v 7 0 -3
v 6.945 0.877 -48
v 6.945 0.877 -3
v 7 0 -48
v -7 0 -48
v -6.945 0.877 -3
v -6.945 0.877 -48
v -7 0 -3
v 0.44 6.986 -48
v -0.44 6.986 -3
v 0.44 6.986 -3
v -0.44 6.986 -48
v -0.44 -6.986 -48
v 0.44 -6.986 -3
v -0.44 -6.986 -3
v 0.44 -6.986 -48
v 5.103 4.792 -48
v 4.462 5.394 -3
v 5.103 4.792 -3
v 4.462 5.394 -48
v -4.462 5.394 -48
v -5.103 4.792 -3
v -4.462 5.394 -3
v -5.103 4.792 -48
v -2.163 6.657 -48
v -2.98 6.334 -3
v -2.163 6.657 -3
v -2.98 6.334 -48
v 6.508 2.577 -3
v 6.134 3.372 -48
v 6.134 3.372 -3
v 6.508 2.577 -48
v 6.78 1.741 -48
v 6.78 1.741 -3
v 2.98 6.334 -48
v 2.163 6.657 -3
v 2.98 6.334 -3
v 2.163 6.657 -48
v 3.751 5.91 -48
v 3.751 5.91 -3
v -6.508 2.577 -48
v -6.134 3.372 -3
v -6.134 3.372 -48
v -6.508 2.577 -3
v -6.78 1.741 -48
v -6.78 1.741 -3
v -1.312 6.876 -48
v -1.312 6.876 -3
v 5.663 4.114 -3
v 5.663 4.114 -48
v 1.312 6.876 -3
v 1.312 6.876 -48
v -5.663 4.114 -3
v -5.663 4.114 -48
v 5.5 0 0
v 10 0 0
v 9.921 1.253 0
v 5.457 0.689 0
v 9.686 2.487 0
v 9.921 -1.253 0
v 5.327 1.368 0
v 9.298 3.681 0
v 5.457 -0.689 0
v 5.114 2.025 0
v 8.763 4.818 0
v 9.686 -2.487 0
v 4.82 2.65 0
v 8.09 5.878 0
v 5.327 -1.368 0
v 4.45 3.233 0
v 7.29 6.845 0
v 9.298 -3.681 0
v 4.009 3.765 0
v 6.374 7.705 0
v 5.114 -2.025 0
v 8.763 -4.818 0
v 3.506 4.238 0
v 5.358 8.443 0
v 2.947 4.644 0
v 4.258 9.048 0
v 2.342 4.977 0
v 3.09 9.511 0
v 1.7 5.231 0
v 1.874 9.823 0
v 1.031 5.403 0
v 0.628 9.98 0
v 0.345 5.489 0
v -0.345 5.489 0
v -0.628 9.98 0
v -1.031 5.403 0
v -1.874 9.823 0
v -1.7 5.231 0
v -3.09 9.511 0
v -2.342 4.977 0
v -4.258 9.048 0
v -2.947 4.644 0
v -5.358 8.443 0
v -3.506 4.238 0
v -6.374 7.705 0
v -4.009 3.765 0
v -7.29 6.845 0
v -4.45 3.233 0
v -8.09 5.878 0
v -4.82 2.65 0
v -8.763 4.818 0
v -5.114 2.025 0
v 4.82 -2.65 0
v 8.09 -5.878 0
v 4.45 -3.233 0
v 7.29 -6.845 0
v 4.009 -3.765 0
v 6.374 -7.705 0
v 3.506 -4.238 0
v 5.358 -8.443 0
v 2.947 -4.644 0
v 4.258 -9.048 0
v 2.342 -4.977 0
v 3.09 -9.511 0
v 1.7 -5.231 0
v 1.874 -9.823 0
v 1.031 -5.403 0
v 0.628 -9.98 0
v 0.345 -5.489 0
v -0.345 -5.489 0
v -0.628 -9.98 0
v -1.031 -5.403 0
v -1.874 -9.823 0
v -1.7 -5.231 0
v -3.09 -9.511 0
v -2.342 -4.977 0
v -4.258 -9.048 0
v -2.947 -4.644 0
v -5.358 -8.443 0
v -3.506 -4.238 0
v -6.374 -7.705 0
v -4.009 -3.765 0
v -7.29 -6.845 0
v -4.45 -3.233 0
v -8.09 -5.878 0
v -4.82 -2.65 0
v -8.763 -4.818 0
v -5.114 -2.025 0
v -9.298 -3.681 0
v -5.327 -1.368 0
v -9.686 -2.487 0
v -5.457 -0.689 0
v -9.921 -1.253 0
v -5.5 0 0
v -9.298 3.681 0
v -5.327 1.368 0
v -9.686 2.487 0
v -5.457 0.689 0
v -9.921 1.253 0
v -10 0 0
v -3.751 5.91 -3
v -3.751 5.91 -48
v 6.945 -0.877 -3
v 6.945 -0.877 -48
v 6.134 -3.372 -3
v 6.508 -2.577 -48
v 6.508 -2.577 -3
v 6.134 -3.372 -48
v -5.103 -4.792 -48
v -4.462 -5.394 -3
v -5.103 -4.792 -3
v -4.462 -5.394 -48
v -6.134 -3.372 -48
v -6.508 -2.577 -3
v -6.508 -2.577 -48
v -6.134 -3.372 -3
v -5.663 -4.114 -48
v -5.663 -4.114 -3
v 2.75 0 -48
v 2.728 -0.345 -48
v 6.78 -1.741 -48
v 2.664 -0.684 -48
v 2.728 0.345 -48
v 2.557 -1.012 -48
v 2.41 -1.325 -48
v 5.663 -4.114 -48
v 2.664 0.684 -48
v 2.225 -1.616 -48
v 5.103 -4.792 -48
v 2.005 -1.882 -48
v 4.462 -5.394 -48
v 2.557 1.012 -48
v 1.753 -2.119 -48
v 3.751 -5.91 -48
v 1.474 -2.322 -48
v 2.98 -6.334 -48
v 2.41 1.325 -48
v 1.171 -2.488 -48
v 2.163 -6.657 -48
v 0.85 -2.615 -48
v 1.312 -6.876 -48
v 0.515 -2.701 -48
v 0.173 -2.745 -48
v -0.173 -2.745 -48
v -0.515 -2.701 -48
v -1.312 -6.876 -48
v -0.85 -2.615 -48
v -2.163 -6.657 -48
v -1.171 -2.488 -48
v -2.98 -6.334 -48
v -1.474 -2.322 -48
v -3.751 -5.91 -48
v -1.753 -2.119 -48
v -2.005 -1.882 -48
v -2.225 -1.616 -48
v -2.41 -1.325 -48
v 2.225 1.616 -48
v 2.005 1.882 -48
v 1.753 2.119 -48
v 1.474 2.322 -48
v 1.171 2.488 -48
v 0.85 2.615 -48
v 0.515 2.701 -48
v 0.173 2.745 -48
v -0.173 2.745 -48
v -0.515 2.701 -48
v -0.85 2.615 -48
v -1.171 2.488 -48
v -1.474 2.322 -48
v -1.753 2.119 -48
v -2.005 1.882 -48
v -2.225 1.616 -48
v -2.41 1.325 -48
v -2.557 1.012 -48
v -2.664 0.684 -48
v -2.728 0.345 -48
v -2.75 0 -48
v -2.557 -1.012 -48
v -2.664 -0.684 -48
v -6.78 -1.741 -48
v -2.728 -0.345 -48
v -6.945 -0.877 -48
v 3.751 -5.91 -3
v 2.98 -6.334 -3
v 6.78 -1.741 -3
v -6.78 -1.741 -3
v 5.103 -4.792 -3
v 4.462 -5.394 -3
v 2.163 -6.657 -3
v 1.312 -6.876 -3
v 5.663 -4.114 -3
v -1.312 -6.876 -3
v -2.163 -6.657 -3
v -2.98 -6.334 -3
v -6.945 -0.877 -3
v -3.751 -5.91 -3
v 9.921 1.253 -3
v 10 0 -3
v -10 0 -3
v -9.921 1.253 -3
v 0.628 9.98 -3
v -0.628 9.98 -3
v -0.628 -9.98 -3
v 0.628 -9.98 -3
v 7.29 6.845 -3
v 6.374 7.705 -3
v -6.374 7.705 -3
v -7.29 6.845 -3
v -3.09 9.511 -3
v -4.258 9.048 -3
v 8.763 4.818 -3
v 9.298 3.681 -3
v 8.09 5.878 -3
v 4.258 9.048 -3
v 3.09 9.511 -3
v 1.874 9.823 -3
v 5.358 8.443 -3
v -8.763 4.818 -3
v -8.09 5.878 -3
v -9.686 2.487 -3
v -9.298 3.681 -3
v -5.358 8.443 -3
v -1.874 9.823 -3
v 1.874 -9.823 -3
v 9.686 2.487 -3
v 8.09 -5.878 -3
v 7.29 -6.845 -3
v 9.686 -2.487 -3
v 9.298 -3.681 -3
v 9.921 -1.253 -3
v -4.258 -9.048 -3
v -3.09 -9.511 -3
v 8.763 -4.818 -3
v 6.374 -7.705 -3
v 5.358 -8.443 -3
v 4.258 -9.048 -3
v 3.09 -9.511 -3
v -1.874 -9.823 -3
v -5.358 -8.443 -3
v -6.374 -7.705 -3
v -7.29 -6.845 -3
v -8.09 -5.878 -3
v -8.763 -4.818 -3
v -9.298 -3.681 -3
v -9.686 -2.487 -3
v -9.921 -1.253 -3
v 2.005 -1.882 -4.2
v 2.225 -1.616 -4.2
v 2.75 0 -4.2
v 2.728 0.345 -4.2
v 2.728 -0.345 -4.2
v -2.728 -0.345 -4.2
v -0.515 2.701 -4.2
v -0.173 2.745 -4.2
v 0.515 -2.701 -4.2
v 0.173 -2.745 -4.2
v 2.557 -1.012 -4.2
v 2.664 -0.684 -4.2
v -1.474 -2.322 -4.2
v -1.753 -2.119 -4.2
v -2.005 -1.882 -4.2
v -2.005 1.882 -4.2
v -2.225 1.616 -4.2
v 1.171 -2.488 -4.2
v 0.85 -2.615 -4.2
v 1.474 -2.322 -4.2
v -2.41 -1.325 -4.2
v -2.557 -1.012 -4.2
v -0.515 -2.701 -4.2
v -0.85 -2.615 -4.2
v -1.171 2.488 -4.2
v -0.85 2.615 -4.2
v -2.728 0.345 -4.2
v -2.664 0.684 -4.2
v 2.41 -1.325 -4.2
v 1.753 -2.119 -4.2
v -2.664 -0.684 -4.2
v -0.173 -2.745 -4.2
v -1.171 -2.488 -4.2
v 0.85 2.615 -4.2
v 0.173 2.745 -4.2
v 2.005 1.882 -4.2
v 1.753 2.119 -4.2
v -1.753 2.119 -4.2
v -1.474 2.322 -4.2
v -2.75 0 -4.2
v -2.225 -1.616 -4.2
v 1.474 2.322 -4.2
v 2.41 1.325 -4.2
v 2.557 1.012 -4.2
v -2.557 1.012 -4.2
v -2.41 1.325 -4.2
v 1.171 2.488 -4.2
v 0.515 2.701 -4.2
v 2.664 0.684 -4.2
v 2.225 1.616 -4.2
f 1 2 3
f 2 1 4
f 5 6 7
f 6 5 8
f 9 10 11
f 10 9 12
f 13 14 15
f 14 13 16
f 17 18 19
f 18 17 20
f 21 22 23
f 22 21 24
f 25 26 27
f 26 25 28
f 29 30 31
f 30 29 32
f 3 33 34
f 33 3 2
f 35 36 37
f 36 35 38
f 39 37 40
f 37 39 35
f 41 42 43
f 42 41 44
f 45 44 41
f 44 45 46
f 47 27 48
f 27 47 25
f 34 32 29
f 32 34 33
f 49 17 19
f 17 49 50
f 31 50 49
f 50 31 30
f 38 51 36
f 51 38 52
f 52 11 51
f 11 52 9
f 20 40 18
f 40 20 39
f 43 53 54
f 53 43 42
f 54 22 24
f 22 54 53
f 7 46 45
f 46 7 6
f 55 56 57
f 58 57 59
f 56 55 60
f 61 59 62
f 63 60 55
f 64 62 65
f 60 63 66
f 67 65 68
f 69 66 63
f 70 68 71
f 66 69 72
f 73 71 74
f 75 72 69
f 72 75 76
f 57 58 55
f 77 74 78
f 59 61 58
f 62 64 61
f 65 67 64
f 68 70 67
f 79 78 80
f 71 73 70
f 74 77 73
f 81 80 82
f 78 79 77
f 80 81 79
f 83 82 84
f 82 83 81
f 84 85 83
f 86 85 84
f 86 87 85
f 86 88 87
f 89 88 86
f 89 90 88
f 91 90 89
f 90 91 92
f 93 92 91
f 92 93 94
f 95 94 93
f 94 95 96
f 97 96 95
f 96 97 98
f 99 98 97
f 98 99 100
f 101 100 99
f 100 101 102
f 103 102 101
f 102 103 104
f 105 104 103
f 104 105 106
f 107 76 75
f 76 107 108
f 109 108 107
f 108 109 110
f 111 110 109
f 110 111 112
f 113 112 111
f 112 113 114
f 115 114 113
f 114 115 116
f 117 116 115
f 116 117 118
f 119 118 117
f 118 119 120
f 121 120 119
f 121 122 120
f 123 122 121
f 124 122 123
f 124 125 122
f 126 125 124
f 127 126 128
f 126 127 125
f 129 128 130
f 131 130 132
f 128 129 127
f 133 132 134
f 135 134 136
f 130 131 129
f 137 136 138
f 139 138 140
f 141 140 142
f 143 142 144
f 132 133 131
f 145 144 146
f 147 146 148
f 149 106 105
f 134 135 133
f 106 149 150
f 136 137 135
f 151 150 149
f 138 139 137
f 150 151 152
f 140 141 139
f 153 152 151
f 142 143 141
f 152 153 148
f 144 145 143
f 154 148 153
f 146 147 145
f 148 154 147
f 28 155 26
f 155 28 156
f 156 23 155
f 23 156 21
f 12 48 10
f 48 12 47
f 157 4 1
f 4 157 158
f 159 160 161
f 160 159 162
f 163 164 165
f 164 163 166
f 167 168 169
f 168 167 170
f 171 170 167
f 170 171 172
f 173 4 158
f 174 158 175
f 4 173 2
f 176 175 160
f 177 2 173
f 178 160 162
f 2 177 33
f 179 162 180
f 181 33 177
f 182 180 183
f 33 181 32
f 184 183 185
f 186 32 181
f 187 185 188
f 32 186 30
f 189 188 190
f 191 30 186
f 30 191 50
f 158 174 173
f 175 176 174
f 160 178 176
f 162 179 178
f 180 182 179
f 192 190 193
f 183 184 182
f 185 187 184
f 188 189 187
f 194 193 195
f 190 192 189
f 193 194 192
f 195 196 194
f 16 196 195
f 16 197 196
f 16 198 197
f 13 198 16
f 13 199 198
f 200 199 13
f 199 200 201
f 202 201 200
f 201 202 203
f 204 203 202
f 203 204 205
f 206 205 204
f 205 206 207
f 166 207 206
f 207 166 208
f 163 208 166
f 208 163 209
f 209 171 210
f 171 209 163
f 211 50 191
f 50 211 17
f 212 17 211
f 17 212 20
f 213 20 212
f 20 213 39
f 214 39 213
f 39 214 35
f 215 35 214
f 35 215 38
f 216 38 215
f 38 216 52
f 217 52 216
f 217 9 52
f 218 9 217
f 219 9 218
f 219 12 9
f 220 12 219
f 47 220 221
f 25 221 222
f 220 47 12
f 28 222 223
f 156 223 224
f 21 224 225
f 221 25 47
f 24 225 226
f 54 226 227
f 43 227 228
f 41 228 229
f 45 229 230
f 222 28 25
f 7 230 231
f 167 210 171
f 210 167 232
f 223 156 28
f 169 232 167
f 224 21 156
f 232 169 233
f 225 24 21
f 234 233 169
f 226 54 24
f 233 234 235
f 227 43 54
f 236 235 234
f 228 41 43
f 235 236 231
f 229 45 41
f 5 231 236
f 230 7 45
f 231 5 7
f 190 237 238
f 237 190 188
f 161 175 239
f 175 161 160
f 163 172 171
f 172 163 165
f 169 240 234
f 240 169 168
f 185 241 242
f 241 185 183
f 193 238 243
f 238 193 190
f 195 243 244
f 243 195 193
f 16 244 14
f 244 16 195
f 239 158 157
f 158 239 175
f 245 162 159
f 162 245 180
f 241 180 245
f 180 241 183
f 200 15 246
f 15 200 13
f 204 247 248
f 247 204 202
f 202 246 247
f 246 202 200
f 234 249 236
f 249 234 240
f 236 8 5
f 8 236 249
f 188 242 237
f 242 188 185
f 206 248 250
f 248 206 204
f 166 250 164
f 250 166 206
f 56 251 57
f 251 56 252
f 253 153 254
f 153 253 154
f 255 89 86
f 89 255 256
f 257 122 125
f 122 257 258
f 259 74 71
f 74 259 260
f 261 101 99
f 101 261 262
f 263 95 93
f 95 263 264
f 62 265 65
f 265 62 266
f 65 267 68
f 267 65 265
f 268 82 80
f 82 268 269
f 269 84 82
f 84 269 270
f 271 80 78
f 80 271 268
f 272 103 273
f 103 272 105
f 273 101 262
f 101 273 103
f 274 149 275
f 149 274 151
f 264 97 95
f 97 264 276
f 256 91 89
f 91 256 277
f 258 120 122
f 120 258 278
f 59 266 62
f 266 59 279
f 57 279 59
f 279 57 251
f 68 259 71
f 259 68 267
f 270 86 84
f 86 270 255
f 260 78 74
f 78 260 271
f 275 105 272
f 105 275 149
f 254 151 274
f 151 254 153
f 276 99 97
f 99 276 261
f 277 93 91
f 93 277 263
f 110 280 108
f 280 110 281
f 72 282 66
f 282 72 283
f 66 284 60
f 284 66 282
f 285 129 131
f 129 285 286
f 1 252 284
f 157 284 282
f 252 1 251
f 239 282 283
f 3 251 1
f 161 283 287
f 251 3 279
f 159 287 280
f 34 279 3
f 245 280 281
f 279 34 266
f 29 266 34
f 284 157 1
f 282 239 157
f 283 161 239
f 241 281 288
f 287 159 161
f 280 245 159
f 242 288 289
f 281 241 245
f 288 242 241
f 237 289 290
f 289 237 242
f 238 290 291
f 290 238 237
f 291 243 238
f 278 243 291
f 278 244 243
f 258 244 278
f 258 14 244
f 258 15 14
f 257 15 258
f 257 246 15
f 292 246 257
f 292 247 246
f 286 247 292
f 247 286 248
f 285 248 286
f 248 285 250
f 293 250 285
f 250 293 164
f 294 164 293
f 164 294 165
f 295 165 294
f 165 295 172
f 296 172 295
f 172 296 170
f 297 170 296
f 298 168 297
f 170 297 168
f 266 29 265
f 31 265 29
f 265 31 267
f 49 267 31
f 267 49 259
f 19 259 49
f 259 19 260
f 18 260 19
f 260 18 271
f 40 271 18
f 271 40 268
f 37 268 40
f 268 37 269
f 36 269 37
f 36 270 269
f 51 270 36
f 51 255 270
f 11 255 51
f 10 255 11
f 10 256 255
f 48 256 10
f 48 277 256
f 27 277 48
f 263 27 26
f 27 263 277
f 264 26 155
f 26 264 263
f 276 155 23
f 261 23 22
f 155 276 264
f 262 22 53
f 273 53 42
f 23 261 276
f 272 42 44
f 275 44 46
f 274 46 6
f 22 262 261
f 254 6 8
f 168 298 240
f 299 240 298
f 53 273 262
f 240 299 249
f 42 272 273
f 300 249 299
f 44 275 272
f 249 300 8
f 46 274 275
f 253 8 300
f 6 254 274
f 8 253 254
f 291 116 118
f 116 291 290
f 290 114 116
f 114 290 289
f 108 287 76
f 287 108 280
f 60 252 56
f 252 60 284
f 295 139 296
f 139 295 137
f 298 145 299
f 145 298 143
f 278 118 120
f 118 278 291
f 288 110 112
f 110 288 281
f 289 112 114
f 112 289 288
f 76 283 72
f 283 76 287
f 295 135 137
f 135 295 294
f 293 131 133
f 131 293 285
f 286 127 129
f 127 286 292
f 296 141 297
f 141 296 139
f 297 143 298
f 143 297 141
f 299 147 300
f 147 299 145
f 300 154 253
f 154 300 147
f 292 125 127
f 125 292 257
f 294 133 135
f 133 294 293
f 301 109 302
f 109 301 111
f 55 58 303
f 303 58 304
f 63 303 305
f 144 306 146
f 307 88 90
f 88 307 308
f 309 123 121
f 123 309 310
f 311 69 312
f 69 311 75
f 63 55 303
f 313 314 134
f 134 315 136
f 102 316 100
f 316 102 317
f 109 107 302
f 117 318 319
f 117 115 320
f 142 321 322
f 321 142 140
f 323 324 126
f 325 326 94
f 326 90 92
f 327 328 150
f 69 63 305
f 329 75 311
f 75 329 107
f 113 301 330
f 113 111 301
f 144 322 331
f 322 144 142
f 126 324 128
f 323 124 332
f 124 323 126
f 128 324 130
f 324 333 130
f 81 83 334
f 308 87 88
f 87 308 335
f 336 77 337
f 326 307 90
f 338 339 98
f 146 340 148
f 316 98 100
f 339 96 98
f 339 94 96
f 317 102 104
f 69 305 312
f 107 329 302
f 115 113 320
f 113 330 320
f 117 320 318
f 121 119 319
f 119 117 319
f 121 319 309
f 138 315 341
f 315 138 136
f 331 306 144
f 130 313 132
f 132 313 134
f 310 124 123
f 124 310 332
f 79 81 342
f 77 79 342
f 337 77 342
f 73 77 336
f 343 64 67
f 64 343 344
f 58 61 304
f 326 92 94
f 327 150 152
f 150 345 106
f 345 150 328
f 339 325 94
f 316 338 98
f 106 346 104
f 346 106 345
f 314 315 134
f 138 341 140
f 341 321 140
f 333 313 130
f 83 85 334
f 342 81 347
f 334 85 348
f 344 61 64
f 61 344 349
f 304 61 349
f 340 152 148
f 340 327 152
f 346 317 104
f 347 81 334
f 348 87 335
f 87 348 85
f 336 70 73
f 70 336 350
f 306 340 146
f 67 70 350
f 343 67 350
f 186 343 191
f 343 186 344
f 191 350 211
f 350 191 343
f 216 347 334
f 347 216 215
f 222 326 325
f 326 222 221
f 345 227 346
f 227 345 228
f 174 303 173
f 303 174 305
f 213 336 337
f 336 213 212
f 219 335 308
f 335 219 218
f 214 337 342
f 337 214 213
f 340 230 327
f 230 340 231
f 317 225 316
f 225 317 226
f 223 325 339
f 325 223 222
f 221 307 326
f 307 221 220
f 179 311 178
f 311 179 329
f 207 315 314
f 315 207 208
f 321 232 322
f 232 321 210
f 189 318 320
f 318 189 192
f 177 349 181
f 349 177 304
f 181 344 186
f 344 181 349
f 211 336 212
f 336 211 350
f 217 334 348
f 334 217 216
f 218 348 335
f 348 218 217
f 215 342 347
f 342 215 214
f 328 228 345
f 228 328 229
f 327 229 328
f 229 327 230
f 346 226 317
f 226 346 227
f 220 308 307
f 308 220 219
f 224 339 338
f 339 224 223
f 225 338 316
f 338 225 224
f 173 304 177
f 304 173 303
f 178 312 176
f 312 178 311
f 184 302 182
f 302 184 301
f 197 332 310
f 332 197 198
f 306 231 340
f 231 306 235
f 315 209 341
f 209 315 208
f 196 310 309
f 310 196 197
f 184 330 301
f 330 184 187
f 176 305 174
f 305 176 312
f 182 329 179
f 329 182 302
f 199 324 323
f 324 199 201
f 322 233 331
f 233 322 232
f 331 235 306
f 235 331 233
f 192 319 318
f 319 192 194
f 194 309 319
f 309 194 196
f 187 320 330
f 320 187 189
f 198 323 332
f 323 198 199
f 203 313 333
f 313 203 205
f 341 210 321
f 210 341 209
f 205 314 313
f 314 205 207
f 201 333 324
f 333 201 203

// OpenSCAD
$fn = 50;


difference() {
	union() {
		translate(v = [0, 0, -48.0000000000]) {
			cylinder(h = 48, r = 7.0000000000);
		}
		translate(v = [0, 0, -3.0000000000]) {
			cylinder(h = 3, r = 10.0000000000);
		}
	}
	union() {
		translate(v = [0, 0, 0]) {
			rotate(a = [0, 0, 0]) {
				difference() {
					union() {
						#translate(v = [0, 0, -48.0000000000]) {
							cylinder(h = 48, r = 2.2500000000);
						}
						#translate(v = [0, 0, -4.2000000000]) {
							cylinder(h = 4.2000000000, r1 = 2.7500000000, r2 = 5.5000000000);
						}
						#translate(v = [0, 0, -48.0000000000]) {
							cylinder(h = 48, r = 2.7500000000);
						}
						#translate(v = [0, 0, -48.0000000000]) {
							cylinder(h = 48, r = 2.2500000000);
						}
					}
					union();
				}
			}
		}
	}
}
